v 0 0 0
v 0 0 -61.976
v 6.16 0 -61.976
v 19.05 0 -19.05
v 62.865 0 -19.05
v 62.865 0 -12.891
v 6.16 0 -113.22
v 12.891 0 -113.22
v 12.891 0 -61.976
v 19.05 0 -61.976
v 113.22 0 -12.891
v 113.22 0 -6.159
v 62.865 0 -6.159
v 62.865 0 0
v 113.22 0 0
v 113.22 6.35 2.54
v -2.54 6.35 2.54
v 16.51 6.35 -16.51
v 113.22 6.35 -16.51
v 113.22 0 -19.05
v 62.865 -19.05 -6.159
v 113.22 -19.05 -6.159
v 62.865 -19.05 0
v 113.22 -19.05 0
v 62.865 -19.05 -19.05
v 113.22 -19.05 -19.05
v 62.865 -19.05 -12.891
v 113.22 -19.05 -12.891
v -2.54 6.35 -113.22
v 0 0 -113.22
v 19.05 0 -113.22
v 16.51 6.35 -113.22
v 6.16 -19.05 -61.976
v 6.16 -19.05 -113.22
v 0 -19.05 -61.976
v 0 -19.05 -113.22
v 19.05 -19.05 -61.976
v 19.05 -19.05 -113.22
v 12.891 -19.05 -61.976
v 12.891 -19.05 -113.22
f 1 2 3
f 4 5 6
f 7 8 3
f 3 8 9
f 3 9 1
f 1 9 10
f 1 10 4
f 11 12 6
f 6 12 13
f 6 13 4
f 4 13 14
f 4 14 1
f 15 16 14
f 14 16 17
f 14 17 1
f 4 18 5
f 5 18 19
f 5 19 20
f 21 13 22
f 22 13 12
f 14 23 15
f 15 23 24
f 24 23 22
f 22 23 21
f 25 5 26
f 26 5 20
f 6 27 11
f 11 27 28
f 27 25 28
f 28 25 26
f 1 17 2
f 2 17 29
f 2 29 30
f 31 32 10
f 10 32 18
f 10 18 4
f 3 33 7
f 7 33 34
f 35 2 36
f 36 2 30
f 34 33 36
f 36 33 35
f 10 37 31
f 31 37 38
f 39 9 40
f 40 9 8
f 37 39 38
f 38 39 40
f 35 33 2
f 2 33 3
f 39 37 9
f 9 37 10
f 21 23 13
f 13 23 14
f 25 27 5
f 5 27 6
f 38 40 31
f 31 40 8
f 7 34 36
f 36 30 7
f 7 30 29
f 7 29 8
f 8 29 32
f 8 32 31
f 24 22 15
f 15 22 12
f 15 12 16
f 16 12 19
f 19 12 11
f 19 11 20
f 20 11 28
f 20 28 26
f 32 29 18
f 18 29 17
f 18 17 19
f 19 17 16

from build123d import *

# Parameters (mm, degrees)
SKETCH5_W           = 6.1595
SKETCH5_H           = 101.6
SKETCH5_W_2         = 101.6
SKETCH5_H_2         = 6.1595
BOSS_EXTRUDE1_DEPTH = 19.05
SKETCH6_W           = 333.025633445
SKETCH6_H           = 150.821732437
CUT_EXTRUDE1_DEPTH  = 205.486
SKETCH7_W           = 172.839732196
SKETCH7_H           = 155.996881263
CUT_EXTRUDE2_DEPTH  = 205.486
SKETCH8_W           = 181.528793167
SKETCH8_H           = 183.344081098
CUT_EXTRUDE3_DEPTH  = 147.066


with BuildPart() as part:
    # Sketch2 → Loft1 section 0
    with BuildSketch(Plane(origin=(0, 127, 0), x_dir=(1, 0, 0), z_dir=(0, 1, 0))):
        with BuildLine():
            Line((-50.8, -50.8), (278.13, -50.8))
            Line((278.13, -50.8), (278.13, 276.352))
            Line((278.13, 276.352), (-50.8, 276.352))
            Line((-50.8, 276.352), (-50.8, -50.8))
        make_face()
    # Sketch1 → Loft1 section 1
    with BuildSketch(Plane(origin=(0, 0, 0), x_dir=(1, 0, 0), z_dir=(0, 1, 0))):
        with BuildLine():
            Line((0, 0), (227.33, 0))
            Line((227.33, 0), (227.33, 225.552))
            Line((227.33, 225.552), (0, 225.552))
            Line((0, 225.552), (0, 0))
        make_face()
    loft()

    # Sketch4 → Cut-Loft3 section 0
    with BuildSketch(Plane.XZ):
        with BuildLine():
            Line((208.28, -19.05), (19.05, -19.05))
            Line((19.05, -19.05), (19.05, -206.502))
            Line((19.05, -206.502), (208.28, -206.502))
            Line((208.28, -206.502), (208.28, -19.05))
        make_face()
    # Sketch3 → Cut-Loft3 section 1
    with BuildSketch(Plane(origin=(0, 127, 0), x_dir=(1, 0, 0), z_dir=(0, 1, 0))):
        with BuildLine():
            Line((-31.75, 257.302), (-31.75, -31.75))
            Line((-31.75, -31.75), (259.08, -31.75))
            Line((259.08, -31.75), (259.08, 257.302))
            Line((259.08, 257.302), (-31.75, 257.302))
        make_face()
    loft(mode=Mode.SUBTRACT)

    # Sketch5 → Boss-Extrude1 (add)
    with BuildSketch(Plane.XZ):
        with Locations((3.07975, -112.776)):
            Rectangle(SKETCH5_W, SKETCH5_H)
        with Locations((15.97025, -112.776)):
            Rectangle(SKETCH5_W, SKETCH5_H)
        with Locations((113.665, -3.07975)):
            Rectangle(SKETCH5_W_2, SKETCH5_H_2)
        with Locations((113.665, -15.97025)):
            Rectangle(SKETCH5_W_2, SKETCH5_H_2)
        with Locations((223.36125, -113.665)):
            Rectangle(SKETCH5_W, SKETCH5_H)
        with Locations((210.47075, -113.665)):
            Rectangle(SKETCH5_W, SKETCH5_H)
        with Locations((112.776, -223.36125)):
            Rectangle(SKETCH5_W_2, SKETCH5_H_2)
        with Locations((112.776, -210.47075)):
            Rectangle(SKETCH5_W_2, SKETCH5_H_2)
    extrude(amount=BOSS_EXTRUDE1_DEPTH)

    # Sketch6 → Cut-Extrude1 (cut)
    with BuildSketch(Plane.XY.offset(-113.2205)):
        with Locations((111.617183278, 51.589133782)):
            Rectangle(SKETCH6_W, SKETCH6_H)
    extrude(amount=-CUT_EXTRUDE1_DEPTH, mode=Mode.SUBTRACT)

    # Sketch7 → Cut-Extrude2 (cut)
    with BuildSketch(Plane.ZY.offset(-113.2205)):
        with Locations((-29.906934154, 52.245596061)):
            Rectangle(SKETCH7_W, SKETCH7_H)
    extrude(amount=-CUT_EXTRUDE2_DEPTH, mode=Mode.SUBTRACT)

    # Sketch8 → Cut-Extrude3 (cut)
    with BuildSketch(Plane(origin=(0, 6.35, 0), x_dir=(-1, 0, 0), z_dir=(0, -1, 0))):
        with Locations((-25.634722782, 25.303882613)):
            Rectangle(SKETCH8_W, SKETCH8_H)
    extrude(amount=-CUT_EXTRUDE3_DEPTH, mode=Mode.SUBTRACT)


solid = part.part
